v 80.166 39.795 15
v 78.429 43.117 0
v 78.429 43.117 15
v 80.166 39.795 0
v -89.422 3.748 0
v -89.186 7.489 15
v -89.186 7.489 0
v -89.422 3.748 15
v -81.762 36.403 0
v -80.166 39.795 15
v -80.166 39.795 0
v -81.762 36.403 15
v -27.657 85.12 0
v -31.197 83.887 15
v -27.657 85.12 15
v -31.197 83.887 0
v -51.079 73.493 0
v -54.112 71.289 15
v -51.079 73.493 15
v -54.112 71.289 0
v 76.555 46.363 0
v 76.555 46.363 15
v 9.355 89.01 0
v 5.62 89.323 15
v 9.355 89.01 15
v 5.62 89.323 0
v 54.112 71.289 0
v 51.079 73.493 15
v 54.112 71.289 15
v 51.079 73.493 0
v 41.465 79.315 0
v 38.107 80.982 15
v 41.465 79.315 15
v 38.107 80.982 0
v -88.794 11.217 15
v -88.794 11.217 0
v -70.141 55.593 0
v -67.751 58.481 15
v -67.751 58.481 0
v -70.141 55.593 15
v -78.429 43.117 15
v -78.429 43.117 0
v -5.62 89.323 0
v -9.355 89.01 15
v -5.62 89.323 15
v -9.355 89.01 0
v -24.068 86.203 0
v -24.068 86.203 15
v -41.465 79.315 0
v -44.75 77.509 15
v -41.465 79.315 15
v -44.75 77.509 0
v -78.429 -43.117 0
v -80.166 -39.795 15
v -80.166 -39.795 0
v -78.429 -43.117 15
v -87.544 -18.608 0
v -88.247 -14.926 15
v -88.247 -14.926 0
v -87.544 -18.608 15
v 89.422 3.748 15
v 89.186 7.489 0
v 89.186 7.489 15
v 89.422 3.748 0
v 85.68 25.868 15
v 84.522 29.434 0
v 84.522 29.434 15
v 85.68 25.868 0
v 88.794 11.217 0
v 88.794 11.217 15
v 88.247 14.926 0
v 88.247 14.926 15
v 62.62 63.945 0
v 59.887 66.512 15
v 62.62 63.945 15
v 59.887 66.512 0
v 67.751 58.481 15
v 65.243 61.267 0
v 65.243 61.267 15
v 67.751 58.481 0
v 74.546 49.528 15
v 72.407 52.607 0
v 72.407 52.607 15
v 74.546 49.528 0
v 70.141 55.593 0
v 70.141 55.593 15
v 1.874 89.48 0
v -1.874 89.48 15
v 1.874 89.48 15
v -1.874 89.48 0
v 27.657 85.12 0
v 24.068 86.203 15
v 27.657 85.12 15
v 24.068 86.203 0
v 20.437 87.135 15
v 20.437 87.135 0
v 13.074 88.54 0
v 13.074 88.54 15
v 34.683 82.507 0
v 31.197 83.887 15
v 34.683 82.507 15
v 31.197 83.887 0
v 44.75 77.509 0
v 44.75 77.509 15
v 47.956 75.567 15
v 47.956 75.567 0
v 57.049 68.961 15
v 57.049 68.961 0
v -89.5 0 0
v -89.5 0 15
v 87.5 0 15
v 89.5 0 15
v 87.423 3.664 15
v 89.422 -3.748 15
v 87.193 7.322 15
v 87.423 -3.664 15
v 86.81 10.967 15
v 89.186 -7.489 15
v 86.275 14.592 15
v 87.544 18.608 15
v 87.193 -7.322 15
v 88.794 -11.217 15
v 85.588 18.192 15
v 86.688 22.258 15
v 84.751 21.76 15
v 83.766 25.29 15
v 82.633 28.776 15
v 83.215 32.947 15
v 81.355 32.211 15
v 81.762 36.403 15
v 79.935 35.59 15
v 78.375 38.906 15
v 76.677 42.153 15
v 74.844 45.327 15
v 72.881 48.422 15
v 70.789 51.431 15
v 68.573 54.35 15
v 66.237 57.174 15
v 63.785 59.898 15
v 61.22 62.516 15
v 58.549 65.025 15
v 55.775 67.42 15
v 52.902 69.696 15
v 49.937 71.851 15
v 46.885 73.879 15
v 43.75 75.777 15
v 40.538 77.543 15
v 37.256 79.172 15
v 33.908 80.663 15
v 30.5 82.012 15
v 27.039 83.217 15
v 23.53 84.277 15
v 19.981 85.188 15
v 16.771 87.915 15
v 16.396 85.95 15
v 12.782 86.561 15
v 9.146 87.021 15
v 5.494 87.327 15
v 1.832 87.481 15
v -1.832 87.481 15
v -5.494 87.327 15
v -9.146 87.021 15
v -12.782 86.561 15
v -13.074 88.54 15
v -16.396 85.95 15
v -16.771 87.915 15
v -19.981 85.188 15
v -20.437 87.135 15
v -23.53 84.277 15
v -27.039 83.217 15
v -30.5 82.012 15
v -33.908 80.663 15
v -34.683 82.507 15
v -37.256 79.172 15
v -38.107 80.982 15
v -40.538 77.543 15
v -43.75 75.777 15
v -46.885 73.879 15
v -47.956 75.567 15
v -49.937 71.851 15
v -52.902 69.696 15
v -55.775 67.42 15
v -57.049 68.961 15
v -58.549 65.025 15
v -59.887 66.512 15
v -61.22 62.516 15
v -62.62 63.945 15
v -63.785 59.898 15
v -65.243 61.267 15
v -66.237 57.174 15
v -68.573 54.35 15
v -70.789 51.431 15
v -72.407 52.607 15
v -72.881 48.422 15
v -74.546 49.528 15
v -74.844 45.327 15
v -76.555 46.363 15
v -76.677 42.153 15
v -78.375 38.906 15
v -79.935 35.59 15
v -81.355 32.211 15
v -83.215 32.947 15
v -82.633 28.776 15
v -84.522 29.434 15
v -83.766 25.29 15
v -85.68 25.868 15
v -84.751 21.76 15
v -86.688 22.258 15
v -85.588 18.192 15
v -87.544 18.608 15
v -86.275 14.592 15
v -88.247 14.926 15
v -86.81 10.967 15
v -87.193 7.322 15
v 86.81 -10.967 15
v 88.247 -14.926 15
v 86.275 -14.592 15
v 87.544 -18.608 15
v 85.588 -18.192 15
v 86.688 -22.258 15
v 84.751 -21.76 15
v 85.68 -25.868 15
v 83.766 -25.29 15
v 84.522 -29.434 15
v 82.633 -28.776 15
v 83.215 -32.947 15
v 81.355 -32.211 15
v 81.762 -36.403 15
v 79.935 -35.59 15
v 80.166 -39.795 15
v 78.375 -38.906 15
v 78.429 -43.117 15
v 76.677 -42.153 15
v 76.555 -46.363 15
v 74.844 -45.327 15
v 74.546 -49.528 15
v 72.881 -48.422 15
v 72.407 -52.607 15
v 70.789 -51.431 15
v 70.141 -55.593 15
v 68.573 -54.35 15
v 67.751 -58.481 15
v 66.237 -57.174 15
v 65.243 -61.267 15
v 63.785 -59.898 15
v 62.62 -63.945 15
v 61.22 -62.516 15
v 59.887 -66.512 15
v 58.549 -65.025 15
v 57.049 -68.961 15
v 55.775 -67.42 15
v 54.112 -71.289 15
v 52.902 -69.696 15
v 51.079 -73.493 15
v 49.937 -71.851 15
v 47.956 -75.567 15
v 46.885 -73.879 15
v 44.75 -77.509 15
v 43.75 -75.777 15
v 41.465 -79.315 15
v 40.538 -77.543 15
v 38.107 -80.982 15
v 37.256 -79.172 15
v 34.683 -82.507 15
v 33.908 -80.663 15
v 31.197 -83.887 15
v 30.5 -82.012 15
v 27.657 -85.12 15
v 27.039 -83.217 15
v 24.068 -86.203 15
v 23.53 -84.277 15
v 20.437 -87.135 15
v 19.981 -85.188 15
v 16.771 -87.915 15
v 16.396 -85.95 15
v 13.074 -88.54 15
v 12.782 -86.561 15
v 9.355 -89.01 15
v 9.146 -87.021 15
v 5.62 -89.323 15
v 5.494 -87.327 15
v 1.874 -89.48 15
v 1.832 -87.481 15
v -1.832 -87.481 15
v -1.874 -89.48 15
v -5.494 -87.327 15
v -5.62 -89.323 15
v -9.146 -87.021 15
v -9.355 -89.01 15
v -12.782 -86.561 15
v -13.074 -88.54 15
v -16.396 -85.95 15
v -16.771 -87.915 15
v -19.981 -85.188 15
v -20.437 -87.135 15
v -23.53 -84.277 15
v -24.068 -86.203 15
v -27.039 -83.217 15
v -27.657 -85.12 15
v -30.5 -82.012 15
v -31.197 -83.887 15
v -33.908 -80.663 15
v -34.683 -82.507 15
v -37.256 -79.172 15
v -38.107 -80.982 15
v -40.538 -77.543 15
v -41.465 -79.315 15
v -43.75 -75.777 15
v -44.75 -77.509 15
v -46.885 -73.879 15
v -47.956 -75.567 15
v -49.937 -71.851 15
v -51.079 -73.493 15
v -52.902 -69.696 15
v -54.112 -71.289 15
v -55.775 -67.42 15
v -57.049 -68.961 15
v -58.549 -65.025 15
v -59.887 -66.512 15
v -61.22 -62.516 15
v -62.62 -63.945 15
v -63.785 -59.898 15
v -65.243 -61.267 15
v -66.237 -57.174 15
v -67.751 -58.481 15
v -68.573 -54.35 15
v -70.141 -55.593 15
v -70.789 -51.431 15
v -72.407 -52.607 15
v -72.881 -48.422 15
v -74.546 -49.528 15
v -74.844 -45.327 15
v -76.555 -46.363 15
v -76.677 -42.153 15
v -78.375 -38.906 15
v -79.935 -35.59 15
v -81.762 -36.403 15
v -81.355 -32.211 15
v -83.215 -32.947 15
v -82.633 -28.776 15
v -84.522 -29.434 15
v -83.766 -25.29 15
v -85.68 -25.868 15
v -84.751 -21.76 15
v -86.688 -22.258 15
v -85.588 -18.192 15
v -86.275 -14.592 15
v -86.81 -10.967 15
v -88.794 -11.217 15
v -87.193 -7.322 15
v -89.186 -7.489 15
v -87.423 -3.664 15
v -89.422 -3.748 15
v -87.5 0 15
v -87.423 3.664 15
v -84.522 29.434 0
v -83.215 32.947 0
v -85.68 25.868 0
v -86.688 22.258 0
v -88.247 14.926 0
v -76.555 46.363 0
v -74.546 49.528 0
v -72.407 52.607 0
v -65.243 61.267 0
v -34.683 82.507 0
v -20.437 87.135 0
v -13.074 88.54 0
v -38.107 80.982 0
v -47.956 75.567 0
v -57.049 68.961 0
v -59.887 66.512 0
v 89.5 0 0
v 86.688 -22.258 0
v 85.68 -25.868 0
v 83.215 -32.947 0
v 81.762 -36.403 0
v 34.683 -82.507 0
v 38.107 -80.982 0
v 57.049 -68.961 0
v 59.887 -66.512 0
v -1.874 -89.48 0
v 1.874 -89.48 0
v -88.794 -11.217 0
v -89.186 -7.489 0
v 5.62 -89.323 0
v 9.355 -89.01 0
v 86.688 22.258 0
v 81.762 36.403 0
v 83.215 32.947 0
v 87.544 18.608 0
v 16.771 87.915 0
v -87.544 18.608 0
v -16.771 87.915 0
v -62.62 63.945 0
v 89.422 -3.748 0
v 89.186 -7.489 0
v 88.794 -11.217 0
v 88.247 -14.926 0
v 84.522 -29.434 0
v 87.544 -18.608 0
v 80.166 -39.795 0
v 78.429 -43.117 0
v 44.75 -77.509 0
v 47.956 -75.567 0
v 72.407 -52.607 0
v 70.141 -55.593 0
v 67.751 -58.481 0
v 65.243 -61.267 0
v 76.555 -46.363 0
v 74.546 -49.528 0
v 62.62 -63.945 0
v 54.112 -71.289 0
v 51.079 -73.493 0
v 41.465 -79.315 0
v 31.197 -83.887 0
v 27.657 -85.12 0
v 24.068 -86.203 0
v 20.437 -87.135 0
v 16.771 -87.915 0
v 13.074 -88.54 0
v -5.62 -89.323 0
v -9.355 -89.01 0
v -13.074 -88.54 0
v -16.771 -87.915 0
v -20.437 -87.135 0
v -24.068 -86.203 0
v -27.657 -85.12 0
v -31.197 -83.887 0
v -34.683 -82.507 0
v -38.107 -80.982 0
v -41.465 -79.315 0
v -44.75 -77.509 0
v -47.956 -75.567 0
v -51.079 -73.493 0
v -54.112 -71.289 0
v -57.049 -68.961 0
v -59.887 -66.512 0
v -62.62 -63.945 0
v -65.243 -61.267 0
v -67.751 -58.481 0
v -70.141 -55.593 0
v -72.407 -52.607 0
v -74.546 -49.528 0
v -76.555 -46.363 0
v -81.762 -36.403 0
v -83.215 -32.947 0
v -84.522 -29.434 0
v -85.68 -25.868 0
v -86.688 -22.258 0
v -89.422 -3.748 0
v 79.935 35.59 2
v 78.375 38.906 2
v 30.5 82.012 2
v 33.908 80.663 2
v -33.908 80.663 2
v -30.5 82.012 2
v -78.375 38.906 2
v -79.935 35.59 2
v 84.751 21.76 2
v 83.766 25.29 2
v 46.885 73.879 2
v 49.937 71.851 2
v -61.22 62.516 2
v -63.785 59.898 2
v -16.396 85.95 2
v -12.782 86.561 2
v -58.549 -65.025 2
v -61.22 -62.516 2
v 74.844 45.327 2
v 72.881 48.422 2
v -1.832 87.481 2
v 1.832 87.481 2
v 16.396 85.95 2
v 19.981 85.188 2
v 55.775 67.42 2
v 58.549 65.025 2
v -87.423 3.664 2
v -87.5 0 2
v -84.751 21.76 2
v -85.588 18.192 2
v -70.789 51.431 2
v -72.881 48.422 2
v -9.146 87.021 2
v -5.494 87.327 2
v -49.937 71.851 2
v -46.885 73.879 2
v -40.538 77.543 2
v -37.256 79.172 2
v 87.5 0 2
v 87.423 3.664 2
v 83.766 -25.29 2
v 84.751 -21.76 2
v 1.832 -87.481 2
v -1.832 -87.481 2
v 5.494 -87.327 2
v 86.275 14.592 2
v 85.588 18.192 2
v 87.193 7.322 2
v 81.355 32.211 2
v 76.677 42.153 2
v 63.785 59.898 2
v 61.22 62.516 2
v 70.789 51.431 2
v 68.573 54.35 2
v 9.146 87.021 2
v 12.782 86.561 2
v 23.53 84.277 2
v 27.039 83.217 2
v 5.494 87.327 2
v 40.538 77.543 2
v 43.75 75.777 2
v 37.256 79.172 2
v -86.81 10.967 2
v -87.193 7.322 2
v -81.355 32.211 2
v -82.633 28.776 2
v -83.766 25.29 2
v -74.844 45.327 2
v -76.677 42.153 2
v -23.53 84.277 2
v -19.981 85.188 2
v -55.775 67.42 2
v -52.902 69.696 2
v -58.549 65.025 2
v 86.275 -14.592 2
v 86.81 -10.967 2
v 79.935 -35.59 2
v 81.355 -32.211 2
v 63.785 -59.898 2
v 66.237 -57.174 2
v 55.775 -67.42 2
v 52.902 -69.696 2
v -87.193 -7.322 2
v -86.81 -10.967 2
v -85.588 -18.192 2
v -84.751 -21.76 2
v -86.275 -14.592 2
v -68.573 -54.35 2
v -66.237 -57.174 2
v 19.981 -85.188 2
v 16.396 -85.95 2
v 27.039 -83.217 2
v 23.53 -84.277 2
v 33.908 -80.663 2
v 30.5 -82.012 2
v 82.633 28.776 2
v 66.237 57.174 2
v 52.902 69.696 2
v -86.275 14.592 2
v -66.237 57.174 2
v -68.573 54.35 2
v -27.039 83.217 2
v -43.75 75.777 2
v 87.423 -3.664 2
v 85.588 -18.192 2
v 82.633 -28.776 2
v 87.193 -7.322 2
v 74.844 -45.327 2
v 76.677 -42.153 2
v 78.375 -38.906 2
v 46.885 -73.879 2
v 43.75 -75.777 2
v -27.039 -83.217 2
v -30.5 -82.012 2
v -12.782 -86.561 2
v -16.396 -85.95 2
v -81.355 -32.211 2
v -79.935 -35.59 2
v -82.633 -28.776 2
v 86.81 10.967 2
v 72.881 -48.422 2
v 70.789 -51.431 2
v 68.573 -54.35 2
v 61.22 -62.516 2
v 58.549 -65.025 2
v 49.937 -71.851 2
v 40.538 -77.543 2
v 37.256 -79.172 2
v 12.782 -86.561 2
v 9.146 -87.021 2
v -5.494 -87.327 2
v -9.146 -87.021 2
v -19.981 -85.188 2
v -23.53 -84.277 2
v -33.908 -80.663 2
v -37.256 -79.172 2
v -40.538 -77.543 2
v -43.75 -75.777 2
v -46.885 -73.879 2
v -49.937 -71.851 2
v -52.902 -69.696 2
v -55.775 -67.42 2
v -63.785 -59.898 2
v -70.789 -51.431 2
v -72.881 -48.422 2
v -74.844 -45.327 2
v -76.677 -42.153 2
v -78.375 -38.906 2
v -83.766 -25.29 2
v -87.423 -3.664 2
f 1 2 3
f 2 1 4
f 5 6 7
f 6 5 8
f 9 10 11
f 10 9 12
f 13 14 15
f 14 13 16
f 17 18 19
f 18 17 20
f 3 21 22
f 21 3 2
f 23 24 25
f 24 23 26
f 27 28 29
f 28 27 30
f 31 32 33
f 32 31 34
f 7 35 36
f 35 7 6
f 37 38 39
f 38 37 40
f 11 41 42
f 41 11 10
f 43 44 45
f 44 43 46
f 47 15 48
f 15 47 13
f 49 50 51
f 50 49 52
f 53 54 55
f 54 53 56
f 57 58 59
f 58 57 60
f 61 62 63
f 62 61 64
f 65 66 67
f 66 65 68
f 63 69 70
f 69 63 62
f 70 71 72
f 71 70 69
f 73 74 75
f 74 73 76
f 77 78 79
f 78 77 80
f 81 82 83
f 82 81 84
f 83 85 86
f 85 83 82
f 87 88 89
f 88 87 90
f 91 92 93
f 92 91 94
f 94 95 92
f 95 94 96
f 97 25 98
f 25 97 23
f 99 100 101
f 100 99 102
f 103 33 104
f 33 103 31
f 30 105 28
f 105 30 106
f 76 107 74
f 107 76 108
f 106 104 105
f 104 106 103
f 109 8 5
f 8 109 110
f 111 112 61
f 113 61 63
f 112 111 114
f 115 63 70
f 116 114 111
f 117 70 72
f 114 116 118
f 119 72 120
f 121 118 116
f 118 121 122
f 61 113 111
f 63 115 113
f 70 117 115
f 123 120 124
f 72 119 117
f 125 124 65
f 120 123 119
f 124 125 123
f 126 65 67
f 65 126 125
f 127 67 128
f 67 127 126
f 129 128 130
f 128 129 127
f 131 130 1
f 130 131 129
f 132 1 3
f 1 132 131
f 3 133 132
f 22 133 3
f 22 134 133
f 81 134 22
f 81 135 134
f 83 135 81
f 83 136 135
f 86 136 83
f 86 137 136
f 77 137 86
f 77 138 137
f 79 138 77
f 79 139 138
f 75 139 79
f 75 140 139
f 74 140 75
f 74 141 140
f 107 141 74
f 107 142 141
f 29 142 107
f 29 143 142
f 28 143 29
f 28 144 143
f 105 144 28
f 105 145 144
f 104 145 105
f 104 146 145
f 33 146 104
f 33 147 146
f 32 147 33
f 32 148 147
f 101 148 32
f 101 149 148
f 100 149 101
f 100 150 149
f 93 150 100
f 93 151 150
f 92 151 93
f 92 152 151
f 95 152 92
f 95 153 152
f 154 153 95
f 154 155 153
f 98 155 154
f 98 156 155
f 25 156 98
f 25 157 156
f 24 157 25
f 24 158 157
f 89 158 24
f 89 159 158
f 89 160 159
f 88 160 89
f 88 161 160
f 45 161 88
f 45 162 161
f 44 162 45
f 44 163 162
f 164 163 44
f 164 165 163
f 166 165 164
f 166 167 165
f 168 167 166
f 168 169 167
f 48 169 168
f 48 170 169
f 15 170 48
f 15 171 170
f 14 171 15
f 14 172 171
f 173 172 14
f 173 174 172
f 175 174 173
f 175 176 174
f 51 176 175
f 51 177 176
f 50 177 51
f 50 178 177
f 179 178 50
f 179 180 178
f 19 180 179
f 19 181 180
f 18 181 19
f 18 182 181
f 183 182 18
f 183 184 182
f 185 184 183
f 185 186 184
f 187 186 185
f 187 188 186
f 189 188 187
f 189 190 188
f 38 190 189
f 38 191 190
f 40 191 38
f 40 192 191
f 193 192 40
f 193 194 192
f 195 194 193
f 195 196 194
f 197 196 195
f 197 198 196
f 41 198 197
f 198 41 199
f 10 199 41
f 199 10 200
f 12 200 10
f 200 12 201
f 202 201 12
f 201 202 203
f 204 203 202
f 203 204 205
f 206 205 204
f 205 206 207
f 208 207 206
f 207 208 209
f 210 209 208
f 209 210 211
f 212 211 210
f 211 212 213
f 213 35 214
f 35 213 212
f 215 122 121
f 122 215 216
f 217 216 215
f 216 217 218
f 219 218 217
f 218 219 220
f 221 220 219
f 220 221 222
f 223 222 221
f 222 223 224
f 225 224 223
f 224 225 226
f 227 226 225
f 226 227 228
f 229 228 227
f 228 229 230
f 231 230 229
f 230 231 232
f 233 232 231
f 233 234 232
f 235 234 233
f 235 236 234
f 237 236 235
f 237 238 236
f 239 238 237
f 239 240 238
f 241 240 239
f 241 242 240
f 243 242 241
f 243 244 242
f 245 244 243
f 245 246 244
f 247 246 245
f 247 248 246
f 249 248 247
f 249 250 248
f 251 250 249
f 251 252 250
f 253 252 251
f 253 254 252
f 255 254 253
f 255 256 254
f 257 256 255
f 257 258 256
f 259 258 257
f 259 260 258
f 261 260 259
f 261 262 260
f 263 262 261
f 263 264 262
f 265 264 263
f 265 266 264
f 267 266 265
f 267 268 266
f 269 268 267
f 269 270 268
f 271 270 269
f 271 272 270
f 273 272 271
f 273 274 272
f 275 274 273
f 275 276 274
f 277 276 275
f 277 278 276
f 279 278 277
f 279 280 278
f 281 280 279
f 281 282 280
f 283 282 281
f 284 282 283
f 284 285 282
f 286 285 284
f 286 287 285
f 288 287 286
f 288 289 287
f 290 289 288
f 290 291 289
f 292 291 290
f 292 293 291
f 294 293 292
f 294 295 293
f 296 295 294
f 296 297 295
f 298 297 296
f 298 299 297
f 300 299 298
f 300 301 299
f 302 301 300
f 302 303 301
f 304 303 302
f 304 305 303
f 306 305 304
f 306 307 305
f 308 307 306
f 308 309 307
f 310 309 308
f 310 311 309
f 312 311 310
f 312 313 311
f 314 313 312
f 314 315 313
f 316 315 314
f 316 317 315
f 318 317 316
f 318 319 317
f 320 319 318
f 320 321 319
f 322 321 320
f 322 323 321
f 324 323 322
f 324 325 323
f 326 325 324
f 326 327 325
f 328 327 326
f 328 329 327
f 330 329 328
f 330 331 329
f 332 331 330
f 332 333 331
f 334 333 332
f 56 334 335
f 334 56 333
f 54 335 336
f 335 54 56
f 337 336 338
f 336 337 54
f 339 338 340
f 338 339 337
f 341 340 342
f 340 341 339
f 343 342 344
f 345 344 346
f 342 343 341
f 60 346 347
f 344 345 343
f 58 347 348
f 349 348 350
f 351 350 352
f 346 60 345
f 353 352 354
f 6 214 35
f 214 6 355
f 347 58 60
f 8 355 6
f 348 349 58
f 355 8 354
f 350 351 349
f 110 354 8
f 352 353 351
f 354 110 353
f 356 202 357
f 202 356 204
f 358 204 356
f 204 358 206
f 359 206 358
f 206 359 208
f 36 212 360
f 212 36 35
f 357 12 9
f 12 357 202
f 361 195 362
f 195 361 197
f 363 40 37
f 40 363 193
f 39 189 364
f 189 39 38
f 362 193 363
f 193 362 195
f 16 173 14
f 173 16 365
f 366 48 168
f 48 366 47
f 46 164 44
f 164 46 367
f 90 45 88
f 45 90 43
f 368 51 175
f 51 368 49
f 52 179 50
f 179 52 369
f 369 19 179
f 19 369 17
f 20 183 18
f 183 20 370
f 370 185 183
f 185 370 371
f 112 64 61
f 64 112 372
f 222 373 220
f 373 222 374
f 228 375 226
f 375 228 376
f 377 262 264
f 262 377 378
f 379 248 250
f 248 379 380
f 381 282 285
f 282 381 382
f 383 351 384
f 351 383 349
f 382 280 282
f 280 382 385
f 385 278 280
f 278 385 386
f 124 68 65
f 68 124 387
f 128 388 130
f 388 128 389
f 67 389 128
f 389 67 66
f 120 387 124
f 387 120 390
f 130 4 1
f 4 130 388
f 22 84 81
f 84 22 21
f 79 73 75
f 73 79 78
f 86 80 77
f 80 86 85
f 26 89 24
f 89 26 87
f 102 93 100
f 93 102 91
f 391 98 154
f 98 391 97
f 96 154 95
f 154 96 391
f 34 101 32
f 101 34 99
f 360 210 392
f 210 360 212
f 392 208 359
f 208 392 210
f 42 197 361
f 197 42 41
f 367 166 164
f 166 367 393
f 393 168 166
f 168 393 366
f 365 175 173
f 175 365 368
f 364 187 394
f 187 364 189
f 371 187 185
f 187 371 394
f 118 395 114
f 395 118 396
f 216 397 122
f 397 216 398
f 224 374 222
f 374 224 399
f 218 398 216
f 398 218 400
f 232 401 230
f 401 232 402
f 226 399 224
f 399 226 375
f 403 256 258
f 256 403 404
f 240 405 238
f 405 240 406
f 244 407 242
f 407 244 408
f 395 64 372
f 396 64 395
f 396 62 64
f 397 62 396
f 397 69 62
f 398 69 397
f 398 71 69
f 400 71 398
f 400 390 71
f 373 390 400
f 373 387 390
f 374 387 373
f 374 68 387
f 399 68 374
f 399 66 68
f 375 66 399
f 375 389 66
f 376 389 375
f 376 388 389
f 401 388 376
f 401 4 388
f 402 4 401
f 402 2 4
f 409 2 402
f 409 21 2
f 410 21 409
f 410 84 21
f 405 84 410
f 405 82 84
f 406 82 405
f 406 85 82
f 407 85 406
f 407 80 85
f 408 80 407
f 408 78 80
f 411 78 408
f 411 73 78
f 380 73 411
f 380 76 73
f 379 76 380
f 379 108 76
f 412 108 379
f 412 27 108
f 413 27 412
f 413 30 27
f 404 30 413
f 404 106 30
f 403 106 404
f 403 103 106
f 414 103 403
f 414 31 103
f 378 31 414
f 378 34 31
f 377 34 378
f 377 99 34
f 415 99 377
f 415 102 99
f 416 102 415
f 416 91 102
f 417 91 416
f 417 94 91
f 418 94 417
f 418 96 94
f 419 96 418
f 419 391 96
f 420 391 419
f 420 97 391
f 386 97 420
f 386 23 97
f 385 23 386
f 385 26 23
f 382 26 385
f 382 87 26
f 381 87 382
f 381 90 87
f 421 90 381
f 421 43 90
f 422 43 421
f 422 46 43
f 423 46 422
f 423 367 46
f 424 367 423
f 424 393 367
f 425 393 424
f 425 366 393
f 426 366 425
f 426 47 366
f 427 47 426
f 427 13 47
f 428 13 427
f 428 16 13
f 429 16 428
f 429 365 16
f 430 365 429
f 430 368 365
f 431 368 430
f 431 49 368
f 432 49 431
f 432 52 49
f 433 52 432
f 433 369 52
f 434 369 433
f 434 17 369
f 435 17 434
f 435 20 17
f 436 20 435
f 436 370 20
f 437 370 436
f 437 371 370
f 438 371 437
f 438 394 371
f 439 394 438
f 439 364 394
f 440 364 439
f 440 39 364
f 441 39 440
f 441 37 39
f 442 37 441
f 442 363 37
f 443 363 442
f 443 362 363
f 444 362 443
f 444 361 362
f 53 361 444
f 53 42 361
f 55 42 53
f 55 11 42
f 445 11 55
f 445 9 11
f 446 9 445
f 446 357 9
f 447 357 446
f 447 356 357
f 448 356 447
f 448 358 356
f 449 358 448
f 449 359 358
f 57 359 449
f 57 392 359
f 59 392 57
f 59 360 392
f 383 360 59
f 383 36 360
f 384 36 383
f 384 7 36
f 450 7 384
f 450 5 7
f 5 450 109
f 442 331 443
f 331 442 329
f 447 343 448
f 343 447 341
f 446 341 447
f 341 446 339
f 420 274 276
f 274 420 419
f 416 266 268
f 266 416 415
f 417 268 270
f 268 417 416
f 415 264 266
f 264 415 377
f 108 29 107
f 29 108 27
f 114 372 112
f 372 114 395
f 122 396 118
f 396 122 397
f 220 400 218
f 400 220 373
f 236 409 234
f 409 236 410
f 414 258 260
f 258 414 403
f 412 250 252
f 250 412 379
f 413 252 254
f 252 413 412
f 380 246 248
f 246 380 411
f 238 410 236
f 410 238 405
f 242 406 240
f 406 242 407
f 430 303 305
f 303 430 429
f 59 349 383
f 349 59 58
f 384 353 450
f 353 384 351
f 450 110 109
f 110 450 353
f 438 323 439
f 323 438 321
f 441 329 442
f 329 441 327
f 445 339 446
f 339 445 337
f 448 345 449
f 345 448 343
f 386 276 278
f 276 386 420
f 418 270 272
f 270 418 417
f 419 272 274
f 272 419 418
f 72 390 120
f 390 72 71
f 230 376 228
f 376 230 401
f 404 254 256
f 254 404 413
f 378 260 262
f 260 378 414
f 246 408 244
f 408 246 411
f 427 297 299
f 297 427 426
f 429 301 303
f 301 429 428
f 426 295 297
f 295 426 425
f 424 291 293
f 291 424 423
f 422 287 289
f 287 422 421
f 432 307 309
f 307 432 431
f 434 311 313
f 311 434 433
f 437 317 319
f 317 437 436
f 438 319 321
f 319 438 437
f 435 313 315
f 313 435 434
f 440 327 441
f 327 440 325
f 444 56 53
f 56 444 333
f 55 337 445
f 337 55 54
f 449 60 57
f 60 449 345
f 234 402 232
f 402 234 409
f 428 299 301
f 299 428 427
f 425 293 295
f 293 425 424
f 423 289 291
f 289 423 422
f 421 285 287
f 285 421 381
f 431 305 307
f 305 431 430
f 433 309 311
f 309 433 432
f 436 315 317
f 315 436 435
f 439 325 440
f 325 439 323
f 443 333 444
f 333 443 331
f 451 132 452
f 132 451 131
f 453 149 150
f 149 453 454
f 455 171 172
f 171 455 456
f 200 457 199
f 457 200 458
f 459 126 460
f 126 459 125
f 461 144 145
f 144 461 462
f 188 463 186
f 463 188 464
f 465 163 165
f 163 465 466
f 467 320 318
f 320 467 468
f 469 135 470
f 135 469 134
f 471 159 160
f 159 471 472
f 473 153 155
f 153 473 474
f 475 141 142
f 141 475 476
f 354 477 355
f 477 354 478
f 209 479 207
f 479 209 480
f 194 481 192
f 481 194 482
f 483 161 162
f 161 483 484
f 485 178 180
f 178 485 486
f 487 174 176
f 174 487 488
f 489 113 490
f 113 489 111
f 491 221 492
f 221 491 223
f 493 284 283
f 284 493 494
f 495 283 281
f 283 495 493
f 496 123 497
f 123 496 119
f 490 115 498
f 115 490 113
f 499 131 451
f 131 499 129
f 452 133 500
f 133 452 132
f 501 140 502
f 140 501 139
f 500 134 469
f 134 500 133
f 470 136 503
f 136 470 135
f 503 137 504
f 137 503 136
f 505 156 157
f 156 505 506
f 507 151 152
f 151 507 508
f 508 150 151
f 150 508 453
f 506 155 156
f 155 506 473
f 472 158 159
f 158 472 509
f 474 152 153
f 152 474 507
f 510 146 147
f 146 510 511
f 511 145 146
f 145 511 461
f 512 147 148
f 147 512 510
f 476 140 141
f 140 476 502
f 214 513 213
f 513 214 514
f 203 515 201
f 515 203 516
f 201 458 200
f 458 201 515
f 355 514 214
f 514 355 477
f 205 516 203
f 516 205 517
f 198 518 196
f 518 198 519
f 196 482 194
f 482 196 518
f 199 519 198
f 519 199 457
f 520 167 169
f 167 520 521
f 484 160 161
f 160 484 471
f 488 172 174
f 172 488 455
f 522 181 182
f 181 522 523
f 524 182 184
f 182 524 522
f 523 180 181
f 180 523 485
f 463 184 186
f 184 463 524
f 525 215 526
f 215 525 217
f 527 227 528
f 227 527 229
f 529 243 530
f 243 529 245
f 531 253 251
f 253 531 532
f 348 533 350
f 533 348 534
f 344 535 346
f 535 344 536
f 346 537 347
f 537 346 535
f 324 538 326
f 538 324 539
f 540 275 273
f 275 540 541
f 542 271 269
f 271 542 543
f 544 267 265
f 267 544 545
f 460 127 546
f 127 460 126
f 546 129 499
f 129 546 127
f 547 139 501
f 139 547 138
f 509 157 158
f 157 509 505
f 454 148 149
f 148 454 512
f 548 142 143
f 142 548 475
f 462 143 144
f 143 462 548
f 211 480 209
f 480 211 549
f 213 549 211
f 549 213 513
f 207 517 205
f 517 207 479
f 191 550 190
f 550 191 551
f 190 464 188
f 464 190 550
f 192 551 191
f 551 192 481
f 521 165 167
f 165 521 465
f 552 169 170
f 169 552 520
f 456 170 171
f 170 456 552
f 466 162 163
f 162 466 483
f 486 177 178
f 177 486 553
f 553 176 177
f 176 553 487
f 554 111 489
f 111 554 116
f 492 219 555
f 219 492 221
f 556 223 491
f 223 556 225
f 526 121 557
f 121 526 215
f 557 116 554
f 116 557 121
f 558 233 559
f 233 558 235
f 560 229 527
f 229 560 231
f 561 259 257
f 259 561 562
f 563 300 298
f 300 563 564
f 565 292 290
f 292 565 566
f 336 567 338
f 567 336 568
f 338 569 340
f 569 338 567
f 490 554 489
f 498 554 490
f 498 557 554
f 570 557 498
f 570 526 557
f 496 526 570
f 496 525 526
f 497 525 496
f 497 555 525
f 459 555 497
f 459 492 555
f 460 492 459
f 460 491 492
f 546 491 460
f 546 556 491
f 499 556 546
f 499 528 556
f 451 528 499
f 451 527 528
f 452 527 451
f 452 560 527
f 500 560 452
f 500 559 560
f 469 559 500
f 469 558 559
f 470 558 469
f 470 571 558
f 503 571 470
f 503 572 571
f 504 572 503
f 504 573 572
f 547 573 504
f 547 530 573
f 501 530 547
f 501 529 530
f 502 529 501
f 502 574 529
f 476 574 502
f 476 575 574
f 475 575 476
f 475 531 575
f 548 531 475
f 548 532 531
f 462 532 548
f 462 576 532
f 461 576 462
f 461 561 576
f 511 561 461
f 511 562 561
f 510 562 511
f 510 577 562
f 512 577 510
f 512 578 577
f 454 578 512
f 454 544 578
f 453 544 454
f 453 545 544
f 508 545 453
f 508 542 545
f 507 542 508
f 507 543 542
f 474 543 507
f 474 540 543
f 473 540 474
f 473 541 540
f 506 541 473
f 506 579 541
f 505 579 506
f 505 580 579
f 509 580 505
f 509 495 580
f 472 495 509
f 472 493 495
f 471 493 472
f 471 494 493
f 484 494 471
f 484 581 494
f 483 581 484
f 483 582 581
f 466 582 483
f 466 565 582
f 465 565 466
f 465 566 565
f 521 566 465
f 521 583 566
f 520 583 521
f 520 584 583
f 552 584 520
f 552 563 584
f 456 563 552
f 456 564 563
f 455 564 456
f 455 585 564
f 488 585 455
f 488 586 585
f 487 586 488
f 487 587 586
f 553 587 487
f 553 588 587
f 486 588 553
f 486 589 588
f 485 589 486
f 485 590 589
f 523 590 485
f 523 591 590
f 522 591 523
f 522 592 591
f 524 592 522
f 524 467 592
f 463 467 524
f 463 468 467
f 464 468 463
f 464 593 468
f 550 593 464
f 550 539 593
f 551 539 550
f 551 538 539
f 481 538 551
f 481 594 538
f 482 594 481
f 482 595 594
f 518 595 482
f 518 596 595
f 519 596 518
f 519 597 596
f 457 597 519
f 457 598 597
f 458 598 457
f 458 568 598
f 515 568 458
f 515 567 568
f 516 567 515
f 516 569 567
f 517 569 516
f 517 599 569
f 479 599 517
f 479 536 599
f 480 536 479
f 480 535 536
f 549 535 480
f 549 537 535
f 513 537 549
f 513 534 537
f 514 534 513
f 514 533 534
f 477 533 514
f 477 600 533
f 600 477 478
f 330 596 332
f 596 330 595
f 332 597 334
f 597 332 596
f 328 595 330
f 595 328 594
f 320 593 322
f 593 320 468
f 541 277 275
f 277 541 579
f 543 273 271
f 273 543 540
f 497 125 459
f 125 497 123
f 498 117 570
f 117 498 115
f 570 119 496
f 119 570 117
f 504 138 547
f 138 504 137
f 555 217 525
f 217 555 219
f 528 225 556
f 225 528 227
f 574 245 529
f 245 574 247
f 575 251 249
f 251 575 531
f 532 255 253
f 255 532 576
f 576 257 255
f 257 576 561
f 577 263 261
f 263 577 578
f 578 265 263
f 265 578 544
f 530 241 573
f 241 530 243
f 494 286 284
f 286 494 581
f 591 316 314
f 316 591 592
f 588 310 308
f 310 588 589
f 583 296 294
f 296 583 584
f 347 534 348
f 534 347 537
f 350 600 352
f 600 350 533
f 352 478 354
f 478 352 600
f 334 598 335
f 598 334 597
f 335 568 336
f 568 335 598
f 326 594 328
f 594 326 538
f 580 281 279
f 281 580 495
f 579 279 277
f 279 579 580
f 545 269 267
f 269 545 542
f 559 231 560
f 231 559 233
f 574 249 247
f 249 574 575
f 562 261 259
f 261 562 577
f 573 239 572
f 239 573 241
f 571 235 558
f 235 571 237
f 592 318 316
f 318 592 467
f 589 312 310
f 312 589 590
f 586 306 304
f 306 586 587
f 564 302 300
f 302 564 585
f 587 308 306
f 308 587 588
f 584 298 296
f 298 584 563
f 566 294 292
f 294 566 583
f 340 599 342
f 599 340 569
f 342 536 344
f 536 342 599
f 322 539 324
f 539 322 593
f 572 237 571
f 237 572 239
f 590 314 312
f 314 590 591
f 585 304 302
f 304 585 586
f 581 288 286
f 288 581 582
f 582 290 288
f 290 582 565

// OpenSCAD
prumer = 175;
stena = 2;
vyska = 15;

difference() {
    cylinder(d=prumer+stena*2, h=vyska, $fn=150);

    translate([0, 0, stena])
        cylinder(d=prumer, h=vyska, $fn=150);
}
